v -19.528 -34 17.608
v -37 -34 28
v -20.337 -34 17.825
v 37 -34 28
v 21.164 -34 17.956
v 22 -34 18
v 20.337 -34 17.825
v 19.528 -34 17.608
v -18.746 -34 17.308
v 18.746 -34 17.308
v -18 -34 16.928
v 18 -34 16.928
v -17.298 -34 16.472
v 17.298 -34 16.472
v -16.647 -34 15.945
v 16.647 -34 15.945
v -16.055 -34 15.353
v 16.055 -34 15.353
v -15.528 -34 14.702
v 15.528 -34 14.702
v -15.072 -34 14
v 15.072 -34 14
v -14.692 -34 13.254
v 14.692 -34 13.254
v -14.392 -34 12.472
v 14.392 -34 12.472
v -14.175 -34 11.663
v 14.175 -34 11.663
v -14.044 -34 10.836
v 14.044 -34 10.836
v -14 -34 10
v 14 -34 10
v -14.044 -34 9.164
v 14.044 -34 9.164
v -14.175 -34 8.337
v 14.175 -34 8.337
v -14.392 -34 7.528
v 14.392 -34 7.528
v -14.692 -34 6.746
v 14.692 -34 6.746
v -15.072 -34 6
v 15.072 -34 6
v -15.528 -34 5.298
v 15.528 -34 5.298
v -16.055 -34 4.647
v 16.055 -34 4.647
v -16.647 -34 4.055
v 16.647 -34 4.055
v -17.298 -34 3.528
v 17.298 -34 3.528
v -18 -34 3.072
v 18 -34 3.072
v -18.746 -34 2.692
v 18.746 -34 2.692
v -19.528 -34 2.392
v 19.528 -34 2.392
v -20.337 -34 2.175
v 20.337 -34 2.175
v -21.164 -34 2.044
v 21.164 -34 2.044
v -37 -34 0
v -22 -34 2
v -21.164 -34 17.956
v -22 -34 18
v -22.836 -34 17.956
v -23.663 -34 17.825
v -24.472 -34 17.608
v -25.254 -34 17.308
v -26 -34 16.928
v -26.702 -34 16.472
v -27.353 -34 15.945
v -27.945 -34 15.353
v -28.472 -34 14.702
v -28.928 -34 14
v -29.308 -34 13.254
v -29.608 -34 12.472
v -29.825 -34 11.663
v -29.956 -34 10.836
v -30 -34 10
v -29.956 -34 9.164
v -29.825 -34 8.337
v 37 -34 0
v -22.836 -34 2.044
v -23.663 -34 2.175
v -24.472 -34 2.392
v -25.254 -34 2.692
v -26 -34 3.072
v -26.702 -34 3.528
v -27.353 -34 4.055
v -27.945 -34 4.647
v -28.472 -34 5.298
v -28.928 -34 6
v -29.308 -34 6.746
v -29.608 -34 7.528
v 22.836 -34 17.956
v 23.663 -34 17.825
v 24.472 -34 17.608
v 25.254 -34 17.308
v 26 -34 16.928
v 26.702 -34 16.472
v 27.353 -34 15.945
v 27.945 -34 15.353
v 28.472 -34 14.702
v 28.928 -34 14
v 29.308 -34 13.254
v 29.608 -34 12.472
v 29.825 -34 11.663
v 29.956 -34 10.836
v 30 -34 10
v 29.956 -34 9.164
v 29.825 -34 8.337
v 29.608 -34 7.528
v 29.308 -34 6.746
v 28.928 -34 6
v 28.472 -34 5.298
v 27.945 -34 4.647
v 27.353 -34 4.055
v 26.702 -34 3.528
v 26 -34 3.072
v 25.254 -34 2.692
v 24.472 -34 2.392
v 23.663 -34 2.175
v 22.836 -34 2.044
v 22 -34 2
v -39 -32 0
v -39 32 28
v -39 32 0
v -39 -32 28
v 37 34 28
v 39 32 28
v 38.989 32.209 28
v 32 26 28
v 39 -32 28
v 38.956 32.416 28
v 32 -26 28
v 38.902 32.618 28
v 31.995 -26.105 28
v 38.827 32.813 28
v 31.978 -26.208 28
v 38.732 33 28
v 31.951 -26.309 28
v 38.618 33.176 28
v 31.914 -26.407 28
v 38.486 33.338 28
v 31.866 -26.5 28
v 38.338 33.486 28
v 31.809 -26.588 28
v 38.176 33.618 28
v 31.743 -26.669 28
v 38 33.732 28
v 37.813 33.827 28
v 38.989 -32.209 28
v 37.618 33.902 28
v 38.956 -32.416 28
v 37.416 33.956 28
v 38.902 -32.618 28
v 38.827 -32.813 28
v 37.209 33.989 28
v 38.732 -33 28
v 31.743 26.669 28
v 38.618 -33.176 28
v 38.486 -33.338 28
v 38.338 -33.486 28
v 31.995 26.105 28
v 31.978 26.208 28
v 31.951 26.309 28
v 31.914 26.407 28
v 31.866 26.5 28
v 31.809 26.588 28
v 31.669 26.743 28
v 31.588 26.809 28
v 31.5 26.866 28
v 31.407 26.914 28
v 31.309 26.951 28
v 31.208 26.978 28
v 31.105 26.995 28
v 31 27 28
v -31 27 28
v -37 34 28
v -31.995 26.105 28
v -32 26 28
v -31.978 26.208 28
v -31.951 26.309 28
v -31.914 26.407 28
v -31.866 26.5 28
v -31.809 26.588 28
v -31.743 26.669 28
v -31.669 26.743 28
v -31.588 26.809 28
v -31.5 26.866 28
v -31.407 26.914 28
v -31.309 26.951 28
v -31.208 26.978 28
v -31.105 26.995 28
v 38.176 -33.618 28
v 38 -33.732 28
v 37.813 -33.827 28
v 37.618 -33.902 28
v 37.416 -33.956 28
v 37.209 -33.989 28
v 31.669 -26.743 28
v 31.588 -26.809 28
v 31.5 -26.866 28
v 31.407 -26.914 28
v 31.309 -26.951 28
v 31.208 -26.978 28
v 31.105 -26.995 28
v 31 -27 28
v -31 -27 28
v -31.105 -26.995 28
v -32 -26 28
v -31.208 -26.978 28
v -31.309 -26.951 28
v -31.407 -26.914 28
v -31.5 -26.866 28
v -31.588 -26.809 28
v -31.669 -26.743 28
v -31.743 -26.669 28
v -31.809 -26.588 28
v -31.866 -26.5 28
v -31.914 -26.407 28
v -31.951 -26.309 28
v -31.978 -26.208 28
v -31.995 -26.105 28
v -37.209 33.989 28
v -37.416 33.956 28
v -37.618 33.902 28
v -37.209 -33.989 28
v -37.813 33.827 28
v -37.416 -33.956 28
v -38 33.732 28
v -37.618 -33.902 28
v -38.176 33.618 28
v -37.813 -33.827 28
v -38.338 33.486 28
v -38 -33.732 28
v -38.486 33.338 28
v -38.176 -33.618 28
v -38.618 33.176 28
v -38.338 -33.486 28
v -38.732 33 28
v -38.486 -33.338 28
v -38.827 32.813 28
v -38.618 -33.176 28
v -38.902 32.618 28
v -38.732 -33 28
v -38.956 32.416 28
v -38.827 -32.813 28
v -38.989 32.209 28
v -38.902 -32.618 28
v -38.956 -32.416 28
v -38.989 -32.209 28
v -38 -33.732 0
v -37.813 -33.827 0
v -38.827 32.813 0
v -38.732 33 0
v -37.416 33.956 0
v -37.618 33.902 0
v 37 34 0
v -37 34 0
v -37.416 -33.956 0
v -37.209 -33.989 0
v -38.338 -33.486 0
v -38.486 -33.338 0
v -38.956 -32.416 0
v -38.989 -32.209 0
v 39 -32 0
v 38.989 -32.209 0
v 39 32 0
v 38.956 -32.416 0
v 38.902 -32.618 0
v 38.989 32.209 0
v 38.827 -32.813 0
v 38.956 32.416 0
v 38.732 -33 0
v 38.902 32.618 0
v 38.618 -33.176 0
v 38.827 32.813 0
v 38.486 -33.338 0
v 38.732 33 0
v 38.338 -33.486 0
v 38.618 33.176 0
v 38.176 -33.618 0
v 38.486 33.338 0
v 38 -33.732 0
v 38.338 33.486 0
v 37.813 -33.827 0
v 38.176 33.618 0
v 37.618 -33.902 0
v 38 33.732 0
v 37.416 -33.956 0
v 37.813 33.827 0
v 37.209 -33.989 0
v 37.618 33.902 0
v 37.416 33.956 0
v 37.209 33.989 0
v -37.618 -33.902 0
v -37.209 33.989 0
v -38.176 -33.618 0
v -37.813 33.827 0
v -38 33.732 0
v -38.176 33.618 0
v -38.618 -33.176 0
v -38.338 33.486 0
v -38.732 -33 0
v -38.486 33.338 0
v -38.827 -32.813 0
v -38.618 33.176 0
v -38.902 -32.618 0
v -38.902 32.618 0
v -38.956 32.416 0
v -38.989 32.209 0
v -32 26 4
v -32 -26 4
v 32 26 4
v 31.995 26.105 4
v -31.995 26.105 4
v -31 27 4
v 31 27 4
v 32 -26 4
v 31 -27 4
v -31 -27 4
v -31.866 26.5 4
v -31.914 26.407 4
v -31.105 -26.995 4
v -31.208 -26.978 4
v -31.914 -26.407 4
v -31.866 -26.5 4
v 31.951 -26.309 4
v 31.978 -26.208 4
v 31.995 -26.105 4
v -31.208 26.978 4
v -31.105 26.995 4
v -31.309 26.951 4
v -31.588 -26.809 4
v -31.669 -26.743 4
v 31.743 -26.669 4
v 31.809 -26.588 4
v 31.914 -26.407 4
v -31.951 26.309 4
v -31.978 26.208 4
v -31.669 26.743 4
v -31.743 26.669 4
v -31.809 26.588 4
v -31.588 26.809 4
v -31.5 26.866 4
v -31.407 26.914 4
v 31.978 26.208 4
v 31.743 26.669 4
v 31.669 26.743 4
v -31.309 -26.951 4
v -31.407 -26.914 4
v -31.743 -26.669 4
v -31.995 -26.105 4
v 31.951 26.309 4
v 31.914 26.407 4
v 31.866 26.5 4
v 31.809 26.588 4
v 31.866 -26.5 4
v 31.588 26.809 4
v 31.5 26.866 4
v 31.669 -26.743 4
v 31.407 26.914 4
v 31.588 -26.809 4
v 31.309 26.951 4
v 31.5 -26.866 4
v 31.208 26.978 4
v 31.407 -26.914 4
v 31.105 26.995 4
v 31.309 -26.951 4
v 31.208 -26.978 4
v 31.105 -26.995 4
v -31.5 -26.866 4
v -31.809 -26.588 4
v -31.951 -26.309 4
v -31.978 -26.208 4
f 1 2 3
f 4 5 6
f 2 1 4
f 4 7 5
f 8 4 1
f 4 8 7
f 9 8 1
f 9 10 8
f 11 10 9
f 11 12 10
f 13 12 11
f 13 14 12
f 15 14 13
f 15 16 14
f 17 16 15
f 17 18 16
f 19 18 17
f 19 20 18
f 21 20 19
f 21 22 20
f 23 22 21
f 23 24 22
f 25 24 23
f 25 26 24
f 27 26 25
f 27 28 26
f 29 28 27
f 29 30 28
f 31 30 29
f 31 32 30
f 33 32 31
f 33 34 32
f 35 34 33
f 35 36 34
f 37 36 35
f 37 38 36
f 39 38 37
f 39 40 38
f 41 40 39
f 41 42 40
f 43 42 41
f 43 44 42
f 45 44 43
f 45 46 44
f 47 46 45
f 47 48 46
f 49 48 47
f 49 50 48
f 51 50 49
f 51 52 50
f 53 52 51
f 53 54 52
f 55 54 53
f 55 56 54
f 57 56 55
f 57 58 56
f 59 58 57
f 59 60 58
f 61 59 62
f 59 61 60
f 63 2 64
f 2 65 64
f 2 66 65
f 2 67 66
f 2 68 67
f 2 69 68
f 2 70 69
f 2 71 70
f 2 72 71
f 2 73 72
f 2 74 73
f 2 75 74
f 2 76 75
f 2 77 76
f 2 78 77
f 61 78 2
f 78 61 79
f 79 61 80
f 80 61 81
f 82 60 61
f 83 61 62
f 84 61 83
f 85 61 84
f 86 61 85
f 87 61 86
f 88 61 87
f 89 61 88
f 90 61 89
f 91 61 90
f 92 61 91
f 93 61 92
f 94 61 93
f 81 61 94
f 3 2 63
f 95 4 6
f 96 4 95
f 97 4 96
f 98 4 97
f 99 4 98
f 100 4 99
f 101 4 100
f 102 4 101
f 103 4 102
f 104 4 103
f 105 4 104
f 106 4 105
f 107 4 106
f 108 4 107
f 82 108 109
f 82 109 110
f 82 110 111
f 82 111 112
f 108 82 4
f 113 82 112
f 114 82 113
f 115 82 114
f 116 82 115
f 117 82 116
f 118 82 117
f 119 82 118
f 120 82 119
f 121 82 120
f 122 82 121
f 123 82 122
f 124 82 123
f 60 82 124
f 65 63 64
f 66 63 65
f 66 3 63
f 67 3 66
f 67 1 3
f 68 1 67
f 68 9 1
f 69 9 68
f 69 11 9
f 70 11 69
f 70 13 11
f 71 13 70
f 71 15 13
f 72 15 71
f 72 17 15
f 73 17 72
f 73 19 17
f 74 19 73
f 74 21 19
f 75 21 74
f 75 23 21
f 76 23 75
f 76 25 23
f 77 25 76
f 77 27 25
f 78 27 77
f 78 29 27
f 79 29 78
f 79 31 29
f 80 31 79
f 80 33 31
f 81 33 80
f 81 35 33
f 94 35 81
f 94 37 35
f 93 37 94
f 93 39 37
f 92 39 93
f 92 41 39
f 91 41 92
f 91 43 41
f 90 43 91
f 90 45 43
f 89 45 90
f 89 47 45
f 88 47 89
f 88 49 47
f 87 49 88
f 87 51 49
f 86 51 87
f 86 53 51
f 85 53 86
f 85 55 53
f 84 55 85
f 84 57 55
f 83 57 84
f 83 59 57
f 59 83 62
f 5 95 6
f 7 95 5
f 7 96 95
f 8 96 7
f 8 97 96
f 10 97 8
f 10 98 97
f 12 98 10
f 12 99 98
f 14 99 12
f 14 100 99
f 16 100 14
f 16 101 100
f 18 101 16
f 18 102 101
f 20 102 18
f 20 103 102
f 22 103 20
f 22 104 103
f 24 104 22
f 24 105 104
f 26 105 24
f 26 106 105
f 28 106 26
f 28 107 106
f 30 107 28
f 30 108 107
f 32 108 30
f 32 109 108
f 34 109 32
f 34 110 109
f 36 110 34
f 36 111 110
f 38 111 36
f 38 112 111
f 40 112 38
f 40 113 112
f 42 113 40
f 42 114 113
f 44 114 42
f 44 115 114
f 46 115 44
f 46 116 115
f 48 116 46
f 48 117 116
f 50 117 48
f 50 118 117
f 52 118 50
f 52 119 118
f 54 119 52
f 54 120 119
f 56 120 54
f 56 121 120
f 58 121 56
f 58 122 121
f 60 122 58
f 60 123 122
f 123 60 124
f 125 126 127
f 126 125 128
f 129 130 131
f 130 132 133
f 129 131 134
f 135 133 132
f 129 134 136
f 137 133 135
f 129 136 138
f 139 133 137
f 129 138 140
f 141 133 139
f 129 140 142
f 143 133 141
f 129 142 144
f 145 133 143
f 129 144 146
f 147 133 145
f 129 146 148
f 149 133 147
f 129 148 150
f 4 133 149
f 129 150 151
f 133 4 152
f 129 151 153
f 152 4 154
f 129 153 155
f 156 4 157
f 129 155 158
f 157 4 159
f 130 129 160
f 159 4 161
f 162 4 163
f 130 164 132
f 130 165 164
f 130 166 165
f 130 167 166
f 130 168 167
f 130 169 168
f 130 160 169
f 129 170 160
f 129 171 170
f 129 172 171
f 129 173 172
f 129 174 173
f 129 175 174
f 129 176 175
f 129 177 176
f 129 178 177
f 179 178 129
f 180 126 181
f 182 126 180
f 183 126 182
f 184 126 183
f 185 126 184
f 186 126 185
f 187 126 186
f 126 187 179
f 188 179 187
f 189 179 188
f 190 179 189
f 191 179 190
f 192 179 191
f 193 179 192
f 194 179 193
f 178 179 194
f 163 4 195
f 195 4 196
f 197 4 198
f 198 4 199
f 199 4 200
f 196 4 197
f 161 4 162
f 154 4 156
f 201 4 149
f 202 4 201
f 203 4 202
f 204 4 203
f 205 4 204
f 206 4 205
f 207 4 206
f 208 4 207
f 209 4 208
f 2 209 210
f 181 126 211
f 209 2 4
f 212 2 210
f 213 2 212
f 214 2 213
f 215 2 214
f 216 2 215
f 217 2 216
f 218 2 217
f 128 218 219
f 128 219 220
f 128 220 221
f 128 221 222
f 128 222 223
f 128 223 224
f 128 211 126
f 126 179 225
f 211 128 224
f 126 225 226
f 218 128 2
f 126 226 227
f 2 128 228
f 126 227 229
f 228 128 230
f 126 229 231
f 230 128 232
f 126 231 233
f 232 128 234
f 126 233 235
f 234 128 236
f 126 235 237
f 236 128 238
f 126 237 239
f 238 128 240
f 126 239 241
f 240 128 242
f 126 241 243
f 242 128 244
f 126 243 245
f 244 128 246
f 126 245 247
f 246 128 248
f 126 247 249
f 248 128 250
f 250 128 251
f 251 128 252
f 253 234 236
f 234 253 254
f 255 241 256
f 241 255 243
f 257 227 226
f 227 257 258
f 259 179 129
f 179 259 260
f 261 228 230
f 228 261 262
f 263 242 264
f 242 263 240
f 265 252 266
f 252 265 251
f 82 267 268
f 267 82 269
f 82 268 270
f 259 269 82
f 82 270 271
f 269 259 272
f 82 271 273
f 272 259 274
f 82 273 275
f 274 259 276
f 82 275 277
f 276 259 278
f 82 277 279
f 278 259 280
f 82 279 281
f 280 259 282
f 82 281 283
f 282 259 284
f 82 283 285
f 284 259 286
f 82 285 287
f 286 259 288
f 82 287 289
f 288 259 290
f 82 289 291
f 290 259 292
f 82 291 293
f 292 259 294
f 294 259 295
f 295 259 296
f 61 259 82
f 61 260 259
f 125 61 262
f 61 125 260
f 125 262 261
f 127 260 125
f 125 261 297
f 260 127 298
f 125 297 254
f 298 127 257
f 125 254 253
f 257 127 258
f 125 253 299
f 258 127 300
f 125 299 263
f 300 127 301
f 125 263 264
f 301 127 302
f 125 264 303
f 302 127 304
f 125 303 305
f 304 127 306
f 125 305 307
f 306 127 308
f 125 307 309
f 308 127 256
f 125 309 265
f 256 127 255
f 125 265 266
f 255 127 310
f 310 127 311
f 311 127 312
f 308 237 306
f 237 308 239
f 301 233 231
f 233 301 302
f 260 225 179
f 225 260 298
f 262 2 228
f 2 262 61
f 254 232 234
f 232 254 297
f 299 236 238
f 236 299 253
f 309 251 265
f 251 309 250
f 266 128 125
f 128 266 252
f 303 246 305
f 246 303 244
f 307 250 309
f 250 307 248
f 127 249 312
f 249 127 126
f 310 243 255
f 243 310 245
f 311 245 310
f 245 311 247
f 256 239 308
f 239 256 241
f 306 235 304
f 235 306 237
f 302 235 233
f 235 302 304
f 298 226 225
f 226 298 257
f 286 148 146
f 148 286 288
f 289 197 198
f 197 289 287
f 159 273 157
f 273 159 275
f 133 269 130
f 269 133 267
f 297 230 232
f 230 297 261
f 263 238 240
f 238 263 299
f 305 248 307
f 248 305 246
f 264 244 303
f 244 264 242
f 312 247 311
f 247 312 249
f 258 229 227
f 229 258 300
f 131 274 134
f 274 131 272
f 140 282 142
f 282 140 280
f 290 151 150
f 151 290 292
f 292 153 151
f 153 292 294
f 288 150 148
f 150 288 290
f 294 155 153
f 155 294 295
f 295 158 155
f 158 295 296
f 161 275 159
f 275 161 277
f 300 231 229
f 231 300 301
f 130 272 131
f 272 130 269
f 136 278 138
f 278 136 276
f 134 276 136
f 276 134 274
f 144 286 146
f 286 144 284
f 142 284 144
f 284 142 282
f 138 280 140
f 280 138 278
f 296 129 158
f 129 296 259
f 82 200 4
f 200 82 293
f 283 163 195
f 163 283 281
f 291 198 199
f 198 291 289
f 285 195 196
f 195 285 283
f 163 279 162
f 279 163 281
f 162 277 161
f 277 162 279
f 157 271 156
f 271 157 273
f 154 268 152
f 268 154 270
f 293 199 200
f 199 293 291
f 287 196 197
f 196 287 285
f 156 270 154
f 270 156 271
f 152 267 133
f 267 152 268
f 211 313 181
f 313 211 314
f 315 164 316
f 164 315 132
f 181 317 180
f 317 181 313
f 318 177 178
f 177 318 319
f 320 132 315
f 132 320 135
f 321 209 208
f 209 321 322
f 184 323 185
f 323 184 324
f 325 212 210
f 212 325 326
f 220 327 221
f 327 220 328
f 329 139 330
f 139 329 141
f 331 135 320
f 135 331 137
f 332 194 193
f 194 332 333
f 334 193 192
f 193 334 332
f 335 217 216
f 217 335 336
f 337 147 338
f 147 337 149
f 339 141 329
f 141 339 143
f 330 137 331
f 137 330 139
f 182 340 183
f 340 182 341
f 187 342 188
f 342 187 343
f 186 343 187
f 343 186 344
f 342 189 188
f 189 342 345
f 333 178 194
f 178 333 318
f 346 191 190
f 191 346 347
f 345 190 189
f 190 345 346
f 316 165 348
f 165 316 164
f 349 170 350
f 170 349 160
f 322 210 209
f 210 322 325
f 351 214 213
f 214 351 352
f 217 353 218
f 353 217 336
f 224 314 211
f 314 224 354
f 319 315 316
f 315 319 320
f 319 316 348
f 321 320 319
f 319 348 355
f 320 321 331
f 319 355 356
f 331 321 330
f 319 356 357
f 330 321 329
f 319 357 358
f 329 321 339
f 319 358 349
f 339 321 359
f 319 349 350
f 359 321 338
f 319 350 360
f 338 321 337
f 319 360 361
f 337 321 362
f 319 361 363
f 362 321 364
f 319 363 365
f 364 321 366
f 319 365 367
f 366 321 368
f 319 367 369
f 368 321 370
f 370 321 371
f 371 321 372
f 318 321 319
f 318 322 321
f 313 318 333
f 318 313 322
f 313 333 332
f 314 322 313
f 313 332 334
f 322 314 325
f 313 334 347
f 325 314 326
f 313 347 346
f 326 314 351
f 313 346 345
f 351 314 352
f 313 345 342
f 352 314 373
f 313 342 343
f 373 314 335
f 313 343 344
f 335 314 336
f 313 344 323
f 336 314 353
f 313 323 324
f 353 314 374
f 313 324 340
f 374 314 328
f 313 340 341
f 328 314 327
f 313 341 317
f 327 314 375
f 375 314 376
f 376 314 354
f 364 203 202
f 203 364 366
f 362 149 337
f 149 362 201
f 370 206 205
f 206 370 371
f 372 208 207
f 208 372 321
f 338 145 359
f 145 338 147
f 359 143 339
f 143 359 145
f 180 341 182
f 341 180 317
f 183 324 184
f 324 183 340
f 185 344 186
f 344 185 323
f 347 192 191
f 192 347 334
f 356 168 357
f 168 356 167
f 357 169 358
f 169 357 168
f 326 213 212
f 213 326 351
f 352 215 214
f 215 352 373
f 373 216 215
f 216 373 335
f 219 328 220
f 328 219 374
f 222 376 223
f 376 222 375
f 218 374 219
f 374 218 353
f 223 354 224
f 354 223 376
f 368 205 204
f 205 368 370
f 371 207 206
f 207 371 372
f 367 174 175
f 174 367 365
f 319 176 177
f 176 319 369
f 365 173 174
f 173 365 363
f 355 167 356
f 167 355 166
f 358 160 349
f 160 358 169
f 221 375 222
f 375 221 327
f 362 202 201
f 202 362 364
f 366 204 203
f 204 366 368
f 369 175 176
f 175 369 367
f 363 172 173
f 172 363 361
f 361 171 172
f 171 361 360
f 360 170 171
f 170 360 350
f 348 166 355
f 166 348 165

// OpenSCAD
// Test: basic box + button holes only (no guards, no other features)
shell_length=78; shell_width=68; shell_height=28;
wall_thickness=4; floor_thickness=4;
internal_length=64; internal_width=54;
fillet_outer=2.0; fillet_inner=1.0;
btn_hole_dia=12.5; btn_recess_dia=16.0; btn_recess_depth=1.5;
btn_z=10; btn_x_back=-22; btn_x_next=22;
$fn=60;

module rounded_box(l,w,h,r) {
    hull() {
        translate([-l/2+r,-w/2+r,0]) cylinder(r=r,h=h);
        translate([ l/2-r,-w/2+r,0]) cylinder(r=r,h=h);
        translate([-l/2+r, w/2-r,0]) cylinder(r=r,h=h);
        translate([ l/2-r, w/2-r,0]) cylinder(r=r,h=h);
    }
}

// Button hole: recess on outside + through-hole, all in one cylinder step
module one_button_hole(bx) {
    translate([bx, -shell_width/2, btn_z])
    rotate([90, 0, 0]) {
        // Outer recess (wide, shallow) — entirely outside the wall
        cylinder(d=btn_recess_dia, h=btn_recess_depth + 1);
        // Through hole (narrow, full depth)
        cylinder(d=btn_hole_dia, h=wall_thickness + btn_recess_depth + 2);
    }
}

difference() {
    rounded_box(shell_length, shell_width, shell_height, fillet_outer);
    translate([0,0,floor_thickness])
        rounded_box(internal_length, internal_width, shell_height, fillet_inner);
    one_button_hole(btn_x_back);
    one_button_hole(btn_x_next);
}
